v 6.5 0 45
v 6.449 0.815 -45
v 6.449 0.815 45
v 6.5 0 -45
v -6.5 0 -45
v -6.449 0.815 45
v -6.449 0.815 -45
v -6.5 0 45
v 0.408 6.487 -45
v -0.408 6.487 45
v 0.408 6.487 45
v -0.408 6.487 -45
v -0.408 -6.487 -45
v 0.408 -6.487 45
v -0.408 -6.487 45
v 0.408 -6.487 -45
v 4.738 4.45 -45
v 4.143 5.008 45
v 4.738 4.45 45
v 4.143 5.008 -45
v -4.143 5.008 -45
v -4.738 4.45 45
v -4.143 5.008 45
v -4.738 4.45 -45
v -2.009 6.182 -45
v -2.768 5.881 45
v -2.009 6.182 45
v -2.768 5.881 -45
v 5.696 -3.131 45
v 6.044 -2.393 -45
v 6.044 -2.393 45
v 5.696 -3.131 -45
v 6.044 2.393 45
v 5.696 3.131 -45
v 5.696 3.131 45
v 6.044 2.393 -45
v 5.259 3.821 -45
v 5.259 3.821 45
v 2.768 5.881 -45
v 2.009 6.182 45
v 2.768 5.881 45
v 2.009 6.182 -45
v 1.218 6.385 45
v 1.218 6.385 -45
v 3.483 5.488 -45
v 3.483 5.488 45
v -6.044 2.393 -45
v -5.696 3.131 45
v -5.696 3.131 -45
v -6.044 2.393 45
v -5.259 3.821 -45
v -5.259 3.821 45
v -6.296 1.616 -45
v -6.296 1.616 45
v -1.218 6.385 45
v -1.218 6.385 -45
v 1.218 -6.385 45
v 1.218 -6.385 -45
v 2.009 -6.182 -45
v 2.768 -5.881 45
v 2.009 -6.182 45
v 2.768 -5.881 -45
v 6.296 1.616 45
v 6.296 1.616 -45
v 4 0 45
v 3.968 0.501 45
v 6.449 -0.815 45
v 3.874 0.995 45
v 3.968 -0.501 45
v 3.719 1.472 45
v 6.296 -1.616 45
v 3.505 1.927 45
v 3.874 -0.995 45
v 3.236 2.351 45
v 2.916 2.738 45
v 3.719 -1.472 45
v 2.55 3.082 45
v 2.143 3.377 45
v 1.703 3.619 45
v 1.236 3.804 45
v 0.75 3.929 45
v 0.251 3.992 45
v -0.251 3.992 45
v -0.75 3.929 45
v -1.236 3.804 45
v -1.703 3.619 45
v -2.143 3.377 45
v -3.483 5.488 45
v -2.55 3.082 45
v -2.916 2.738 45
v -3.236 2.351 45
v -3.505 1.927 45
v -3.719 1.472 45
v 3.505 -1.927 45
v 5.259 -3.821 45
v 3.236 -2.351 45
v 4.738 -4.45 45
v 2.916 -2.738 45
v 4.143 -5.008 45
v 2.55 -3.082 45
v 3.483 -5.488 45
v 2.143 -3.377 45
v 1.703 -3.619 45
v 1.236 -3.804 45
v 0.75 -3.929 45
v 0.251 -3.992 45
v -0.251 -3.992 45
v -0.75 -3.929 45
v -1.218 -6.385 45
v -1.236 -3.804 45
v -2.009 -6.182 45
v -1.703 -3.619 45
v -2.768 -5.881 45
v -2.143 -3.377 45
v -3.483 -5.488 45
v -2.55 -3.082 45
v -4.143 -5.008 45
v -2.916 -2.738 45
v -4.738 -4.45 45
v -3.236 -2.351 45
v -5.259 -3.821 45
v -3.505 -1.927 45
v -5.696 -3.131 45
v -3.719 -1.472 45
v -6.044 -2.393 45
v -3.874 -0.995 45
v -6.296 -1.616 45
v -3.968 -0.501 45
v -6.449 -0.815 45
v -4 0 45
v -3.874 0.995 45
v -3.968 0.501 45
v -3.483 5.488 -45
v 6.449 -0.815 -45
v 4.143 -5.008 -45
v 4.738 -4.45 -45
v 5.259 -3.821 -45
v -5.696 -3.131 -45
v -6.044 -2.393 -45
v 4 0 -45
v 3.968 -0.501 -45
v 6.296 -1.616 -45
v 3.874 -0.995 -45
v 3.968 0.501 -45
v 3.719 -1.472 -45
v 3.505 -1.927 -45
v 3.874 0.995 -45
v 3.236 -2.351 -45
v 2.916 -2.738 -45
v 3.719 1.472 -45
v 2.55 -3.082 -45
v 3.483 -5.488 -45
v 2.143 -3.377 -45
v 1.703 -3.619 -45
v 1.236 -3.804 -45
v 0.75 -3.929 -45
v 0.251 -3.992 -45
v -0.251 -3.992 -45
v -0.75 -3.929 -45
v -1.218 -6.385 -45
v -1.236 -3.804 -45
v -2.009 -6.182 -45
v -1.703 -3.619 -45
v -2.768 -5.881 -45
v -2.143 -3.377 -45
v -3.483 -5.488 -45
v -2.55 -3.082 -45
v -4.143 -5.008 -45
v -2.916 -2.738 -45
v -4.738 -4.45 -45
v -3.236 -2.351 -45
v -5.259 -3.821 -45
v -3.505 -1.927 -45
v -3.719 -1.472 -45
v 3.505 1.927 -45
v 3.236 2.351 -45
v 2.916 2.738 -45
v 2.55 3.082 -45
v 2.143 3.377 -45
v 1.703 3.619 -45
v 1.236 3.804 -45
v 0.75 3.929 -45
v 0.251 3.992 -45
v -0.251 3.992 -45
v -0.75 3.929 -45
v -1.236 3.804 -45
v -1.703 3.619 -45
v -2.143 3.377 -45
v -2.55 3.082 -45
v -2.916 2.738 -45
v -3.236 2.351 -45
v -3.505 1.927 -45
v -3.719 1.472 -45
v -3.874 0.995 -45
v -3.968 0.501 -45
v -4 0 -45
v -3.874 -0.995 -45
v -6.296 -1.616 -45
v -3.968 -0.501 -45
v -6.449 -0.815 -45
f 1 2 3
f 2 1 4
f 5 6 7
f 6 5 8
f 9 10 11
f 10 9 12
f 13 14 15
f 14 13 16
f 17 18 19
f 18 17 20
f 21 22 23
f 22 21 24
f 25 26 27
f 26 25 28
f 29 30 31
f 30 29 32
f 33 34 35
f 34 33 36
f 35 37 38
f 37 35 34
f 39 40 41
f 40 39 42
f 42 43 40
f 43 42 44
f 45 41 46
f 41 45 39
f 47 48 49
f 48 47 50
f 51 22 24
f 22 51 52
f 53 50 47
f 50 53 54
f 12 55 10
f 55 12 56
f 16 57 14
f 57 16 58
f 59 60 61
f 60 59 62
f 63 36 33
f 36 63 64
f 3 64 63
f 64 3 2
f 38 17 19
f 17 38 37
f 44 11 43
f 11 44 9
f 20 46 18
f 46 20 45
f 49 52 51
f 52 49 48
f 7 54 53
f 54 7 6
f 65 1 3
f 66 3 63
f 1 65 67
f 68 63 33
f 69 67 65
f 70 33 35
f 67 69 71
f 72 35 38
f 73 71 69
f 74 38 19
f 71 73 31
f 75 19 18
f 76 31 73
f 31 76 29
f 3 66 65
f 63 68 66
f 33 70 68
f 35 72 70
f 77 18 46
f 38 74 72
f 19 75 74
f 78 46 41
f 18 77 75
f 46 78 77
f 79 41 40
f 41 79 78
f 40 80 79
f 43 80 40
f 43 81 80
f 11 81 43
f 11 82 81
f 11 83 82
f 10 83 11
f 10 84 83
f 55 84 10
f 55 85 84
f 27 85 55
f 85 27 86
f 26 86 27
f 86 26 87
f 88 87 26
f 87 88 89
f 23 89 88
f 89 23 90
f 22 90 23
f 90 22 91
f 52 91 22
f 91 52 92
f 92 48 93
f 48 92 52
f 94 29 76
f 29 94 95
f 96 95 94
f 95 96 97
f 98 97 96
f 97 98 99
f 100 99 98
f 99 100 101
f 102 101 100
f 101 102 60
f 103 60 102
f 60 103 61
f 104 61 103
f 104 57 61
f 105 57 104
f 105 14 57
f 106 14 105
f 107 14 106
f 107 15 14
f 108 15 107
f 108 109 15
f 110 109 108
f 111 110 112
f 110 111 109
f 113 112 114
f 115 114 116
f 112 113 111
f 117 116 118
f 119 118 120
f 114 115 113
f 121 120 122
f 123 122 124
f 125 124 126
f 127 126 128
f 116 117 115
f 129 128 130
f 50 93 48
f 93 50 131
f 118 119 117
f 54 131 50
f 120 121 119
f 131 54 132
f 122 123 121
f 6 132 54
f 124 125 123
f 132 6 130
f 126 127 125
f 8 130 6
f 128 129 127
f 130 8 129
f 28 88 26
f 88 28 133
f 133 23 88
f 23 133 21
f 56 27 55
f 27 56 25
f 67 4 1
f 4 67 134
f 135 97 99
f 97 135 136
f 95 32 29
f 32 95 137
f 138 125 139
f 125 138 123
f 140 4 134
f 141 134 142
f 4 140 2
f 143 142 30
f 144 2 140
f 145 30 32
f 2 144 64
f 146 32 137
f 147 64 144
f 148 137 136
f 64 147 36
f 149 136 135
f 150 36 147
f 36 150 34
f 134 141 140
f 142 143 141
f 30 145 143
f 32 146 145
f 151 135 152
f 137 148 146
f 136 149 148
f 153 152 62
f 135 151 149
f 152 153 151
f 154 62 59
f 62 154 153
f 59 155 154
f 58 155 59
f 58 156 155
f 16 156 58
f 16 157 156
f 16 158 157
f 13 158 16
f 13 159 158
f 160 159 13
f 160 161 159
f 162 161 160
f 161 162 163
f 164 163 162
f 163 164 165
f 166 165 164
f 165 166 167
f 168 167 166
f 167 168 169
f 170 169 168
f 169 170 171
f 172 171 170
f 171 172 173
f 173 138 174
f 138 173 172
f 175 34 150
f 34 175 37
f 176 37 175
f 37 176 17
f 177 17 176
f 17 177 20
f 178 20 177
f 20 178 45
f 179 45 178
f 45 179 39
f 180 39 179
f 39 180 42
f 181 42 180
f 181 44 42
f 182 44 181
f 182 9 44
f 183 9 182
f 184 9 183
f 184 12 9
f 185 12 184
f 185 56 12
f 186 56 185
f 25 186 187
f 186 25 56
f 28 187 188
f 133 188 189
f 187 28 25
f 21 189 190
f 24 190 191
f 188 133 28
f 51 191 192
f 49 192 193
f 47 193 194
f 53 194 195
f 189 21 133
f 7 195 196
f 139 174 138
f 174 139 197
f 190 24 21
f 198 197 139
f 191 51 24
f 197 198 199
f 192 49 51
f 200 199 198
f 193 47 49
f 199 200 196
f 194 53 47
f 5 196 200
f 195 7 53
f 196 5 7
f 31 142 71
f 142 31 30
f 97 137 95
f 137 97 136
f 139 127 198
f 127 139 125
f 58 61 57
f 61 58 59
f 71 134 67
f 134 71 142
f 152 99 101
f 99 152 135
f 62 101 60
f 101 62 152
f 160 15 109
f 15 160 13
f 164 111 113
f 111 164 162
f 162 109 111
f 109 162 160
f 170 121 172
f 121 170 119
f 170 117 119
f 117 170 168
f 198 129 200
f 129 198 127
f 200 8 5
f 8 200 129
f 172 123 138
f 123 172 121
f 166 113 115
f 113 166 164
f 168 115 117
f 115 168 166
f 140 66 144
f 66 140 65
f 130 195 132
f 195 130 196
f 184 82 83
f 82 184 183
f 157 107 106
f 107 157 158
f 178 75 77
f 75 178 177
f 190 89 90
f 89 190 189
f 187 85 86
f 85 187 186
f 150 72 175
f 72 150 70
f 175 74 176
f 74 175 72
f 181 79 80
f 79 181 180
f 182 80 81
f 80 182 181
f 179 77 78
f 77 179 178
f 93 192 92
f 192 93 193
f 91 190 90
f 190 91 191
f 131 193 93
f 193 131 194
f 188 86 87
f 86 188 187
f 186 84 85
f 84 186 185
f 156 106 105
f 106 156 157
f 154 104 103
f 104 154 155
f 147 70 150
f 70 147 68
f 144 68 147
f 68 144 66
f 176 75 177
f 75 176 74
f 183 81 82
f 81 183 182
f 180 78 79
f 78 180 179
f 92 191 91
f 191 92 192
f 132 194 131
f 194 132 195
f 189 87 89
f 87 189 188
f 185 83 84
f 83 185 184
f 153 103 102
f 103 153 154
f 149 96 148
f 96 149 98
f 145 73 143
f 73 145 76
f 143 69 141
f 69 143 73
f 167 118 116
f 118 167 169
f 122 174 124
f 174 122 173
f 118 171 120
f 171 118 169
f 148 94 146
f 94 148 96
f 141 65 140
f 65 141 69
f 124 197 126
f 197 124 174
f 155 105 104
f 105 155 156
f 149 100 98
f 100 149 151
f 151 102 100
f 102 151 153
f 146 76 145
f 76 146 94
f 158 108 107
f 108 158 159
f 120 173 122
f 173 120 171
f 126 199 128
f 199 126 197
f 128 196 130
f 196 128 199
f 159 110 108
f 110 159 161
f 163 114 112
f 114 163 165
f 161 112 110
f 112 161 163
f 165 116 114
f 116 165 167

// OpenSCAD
$fn = 50;


difference() {
	union() {
		translate(v = [0, 0, -45.0000000000]) {
			cylinder(h = 90, r = 6.5000000000);
		}
	}
	union() {
		translate(v = [0, 0, -100.0000000000]) {
			cylinder(h = 200, r = 4);
		}
	}
}
